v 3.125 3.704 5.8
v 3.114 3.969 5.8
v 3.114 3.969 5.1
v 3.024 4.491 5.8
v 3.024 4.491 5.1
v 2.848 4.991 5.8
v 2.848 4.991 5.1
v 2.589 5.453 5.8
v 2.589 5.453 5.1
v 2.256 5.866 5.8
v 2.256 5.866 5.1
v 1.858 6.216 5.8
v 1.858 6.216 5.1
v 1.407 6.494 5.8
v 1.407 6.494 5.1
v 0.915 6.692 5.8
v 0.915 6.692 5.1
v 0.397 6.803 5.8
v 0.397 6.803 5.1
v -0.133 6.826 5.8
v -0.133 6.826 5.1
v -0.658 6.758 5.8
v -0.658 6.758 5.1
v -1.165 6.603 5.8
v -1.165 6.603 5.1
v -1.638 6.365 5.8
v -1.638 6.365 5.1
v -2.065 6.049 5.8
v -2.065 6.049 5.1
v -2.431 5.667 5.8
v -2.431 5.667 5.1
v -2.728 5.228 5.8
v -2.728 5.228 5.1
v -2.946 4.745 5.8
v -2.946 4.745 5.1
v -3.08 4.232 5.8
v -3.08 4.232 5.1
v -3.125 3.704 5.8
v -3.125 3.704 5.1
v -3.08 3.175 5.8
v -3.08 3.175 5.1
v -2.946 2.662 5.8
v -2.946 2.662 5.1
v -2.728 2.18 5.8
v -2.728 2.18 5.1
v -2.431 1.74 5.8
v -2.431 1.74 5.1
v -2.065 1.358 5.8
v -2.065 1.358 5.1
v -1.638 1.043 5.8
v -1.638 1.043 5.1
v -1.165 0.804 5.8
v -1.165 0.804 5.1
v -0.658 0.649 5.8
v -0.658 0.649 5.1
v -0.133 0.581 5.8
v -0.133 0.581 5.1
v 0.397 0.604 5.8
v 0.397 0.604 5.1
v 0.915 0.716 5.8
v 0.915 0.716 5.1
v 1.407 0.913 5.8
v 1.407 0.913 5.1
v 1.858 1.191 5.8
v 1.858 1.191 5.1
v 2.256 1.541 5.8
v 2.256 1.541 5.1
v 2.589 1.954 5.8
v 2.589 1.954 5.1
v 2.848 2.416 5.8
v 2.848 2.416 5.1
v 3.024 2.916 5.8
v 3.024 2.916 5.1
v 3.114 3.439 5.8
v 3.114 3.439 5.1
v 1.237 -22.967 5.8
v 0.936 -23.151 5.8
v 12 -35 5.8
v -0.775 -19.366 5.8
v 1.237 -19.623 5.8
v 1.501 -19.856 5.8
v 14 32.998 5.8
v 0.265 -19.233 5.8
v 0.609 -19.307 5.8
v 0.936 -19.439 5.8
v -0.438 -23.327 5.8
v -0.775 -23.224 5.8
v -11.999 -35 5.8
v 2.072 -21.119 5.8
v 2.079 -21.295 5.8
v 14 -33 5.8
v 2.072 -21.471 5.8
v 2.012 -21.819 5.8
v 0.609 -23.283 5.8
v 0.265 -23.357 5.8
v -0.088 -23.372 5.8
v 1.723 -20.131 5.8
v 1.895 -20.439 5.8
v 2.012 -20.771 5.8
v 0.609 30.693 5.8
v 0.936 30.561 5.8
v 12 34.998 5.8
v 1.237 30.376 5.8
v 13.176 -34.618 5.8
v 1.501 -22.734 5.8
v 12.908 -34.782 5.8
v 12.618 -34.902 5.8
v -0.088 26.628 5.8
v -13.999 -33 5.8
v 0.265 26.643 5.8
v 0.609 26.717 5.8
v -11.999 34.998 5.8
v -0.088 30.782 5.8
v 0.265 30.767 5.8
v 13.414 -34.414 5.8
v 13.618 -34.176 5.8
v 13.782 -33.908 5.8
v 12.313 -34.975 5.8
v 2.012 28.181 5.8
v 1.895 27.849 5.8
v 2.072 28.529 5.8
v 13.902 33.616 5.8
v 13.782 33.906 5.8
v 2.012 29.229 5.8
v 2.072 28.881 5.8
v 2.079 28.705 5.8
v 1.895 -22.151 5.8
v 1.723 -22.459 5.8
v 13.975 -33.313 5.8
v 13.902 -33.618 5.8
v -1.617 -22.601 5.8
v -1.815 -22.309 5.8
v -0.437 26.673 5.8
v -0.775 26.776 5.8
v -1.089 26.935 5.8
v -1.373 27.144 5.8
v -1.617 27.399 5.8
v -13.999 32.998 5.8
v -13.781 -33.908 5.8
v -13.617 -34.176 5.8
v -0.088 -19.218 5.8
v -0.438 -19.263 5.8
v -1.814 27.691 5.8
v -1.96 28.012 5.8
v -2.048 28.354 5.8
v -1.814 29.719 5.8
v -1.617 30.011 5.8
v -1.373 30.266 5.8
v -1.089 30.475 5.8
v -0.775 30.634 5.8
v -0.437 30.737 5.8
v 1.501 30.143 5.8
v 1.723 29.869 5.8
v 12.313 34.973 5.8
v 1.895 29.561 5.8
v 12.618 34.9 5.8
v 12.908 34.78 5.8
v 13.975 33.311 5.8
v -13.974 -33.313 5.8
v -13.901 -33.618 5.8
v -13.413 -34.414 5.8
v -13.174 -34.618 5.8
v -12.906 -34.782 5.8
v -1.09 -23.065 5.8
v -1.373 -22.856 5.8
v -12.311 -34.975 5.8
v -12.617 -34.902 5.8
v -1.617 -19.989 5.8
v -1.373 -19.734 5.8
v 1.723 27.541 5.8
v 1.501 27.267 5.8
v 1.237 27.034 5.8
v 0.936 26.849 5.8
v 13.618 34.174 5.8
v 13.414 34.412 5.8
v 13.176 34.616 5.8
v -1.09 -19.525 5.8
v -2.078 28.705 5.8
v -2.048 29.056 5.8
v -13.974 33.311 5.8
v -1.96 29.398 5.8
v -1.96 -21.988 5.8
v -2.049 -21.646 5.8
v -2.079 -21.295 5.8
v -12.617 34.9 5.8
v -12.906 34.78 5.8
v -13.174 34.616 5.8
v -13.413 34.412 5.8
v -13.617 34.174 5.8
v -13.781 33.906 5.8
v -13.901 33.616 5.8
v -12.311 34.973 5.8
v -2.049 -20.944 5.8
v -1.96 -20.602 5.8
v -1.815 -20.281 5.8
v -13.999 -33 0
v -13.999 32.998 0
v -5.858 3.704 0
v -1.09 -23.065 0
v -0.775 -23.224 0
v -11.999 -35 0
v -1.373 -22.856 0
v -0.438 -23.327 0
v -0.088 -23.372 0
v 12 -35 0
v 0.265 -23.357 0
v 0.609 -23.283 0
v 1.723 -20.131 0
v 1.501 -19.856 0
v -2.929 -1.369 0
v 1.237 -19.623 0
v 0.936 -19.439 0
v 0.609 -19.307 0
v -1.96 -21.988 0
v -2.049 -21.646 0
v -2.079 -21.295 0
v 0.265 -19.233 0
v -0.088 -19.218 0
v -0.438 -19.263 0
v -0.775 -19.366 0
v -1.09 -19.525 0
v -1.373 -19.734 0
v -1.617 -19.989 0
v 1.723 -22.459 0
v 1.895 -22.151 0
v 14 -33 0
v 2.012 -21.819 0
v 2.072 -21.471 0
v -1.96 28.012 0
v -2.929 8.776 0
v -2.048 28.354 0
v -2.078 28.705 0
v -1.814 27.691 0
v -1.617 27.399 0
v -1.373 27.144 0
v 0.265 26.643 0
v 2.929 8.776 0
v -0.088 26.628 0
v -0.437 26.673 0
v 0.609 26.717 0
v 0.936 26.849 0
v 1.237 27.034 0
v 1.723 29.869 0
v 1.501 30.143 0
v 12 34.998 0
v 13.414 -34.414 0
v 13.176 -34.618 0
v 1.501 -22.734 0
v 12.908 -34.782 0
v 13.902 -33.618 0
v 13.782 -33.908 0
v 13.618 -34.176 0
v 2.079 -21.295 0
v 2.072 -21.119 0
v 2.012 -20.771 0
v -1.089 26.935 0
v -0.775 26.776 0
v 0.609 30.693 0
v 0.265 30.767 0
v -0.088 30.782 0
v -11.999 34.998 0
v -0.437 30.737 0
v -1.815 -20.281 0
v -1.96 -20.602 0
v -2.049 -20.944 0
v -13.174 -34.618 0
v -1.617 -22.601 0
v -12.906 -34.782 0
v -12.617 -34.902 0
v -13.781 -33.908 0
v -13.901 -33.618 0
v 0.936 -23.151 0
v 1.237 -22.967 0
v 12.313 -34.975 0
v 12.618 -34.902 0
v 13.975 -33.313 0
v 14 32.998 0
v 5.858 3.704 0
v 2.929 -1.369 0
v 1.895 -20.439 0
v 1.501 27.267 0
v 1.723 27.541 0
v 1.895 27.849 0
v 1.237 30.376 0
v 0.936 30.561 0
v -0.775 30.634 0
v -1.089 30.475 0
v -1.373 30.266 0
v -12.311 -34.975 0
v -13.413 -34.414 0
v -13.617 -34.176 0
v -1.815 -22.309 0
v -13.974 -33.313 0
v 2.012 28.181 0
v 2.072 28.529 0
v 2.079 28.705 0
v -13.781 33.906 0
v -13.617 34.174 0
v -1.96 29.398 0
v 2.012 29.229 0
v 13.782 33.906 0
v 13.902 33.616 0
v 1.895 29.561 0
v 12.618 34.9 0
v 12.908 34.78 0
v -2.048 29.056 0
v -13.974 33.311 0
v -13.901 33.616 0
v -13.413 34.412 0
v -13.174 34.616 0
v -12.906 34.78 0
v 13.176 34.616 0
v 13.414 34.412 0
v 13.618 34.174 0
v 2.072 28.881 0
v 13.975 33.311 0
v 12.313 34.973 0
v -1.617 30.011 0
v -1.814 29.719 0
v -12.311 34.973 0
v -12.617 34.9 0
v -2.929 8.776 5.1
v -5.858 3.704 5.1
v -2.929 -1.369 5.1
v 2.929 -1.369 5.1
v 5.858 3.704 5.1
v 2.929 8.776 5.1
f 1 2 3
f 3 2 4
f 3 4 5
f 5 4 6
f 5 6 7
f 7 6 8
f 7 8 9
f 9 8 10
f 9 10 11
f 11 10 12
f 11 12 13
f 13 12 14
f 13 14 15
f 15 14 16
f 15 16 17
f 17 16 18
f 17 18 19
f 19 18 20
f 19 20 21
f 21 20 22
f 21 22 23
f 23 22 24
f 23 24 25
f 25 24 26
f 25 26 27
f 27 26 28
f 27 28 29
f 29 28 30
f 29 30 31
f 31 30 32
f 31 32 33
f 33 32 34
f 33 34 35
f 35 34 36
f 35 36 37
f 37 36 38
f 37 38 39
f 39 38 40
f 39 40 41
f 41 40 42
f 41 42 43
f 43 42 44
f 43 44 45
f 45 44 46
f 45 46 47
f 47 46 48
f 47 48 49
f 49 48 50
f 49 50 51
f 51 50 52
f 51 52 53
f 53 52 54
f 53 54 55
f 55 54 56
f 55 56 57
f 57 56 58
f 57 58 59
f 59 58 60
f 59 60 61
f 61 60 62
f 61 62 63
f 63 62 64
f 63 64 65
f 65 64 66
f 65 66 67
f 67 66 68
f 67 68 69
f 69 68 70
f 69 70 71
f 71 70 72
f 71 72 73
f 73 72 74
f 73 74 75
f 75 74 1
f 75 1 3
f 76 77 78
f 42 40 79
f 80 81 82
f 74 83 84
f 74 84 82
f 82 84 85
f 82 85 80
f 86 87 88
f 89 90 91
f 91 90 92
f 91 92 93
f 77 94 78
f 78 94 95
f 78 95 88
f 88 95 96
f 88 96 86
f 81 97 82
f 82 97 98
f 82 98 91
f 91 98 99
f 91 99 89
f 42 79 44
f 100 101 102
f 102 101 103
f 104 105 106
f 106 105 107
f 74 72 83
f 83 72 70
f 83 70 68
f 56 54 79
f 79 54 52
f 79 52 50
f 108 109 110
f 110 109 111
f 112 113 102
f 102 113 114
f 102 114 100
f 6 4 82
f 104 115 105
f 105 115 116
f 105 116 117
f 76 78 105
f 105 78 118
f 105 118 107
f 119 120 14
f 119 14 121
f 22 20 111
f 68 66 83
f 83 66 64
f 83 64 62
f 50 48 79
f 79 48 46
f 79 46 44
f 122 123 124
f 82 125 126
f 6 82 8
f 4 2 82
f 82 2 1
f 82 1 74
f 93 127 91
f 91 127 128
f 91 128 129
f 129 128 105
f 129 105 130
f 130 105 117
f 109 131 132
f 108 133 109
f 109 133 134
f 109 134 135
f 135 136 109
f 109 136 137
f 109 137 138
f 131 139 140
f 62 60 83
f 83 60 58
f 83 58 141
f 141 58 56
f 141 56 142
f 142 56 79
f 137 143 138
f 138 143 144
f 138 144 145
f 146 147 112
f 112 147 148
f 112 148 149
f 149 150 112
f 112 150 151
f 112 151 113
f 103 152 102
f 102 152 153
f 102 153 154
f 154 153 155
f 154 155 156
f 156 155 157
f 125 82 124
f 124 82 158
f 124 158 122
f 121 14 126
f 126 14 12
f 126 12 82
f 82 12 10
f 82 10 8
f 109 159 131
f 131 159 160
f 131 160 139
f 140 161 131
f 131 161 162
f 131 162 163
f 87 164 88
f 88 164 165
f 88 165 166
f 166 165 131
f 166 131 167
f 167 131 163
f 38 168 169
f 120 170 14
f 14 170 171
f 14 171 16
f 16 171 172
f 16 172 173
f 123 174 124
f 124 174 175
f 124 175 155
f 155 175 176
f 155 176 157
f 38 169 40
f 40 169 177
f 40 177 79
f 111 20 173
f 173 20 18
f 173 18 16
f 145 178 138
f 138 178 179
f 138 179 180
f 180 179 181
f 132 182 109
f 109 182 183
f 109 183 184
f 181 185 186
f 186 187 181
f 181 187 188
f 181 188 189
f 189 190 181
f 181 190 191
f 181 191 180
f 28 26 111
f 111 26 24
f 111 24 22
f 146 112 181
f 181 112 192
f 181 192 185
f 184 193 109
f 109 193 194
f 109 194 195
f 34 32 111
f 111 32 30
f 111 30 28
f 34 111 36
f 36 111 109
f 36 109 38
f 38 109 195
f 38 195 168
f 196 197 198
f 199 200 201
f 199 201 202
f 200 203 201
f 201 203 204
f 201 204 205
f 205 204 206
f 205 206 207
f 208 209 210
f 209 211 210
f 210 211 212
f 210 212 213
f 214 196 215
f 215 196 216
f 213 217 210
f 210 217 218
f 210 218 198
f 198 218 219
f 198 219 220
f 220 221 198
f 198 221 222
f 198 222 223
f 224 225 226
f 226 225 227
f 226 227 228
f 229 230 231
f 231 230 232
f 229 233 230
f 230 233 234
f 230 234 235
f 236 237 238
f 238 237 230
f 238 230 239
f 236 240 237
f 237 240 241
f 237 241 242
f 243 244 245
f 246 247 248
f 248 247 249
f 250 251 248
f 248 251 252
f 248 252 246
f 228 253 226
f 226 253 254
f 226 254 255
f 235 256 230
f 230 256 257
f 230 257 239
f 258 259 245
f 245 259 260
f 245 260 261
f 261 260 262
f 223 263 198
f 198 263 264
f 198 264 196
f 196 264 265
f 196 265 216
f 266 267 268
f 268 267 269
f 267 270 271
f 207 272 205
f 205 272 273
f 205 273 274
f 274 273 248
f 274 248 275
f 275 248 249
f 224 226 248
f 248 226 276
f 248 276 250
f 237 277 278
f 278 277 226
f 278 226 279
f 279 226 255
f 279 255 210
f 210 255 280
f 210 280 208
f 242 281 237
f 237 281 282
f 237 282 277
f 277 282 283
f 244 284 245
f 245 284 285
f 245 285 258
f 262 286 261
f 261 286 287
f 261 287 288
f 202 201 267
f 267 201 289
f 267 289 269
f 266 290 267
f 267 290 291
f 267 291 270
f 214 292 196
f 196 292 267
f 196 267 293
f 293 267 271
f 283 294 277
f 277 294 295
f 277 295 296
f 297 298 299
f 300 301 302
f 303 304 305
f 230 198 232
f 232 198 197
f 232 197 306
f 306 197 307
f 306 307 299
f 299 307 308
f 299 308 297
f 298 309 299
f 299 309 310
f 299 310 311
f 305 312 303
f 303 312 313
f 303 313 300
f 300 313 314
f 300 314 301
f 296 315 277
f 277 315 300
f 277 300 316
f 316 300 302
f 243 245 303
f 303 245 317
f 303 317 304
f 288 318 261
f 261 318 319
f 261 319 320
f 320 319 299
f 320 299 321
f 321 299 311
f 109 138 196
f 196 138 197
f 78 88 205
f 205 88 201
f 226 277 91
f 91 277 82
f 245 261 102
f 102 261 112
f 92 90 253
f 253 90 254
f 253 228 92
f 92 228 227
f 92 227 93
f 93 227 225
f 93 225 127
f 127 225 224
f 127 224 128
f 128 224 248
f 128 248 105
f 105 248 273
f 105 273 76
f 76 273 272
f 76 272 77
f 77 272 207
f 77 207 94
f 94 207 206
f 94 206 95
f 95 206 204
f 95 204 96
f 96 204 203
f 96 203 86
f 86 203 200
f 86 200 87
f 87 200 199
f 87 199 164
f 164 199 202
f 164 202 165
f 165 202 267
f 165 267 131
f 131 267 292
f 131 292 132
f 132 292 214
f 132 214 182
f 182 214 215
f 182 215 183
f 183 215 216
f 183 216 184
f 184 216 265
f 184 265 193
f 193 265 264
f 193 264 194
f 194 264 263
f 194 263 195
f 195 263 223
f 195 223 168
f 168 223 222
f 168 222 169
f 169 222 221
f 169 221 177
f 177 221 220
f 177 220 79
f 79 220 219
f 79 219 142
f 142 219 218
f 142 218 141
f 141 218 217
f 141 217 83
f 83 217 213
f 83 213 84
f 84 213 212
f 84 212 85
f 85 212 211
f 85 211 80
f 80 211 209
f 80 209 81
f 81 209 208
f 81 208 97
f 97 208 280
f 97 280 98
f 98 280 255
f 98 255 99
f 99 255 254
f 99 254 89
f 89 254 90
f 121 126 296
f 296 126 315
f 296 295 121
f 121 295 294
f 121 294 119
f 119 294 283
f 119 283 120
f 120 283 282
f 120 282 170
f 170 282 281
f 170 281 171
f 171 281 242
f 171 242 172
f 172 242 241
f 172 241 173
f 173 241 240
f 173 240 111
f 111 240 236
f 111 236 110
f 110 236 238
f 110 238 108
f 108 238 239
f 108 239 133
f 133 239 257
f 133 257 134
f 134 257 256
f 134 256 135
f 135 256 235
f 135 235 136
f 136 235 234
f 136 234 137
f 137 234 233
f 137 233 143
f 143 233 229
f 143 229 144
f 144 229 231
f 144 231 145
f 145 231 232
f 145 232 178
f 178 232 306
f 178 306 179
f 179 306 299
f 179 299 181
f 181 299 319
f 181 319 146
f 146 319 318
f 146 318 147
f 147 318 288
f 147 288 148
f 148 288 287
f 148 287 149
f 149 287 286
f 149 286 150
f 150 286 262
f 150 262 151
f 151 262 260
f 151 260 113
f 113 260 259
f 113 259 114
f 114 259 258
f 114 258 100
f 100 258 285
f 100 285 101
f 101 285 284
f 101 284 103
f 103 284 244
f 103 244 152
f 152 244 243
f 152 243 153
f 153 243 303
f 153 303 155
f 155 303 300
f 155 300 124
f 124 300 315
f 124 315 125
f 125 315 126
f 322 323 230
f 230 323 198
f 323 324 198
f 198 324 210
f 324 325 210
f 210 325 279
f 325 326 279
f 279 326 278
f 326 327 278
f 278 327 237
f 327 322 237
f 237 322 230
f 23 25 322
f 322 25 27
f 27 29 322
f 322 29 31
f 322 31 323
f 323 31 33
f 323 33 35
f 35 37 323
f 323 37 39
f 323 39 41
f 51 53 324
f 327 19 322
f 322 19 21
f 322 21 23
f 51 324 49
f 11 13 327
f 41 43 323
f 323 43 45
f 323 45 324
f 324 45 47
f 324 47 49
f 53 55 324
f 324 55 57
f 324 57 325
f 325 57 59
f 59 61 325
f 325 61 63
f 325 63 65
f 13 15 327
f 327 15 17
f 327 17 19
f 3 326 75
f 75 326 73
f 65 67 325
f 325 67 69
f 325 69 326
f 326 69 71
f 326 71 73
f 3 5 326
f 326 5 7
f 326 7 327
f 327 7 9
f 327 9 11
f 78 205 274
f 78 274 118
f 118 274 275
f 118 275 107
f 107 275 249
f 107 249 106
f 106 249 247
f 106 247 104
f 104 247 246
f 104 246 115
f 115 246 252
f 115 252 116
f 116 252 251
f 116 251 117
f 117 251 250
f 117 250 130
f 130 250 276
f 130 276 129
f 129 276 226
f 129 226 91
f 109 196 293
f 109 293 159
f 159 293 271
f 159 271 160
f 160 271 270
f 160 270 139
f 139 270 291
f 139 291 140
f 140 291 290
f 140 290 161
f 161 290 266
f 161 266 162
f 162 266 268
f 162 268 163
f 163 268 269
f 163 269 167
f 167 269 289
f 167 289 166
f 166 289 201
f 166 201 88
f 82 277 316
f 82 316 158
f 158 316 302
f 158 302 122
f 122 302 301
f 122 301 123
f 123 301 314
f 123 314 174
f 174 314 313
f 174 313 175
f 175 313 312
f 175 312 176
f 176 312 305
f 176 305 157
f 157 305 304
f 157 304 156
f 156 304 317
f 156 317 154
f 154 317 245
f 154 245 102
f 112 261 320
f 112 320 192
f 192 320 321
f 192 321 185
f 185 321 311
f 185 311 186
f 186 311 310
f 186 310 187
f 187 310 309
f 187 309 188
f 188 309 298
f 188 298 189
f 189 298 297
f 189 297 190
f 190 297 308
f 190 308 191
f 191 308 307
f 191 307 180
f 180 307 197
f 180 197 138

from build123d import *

# Parameters (mm, degrees)
SKETCH1_W           = 27.998507133
SKETCH1_H           = 69.998003006
SKETCH1_R           = 2.078999996
SKETCH1_R_2         = 3.125
SKETCH1_R_3         = 2.078894146
BOSS_EXTRUDE1_DEPTH = 5.8
CUT_EXTRUDE1_DEPTH  = 5.1
FILLET1_R           = 2


with BuildPart() as part:
    # Sketch1 → Boss-Extrude1 (new body)
    with BuildSketch(Plane.XY):
        with Locations((0.000746433, -0.000998497)):
            Rectangle(SKETCH1_W, SKETCH1_H)
        with Locations((0.000493893, -21.295000553)):
            Circle(SKETCH1_R, mode=Mode.SUBTRACT)
        with Locations((0, 3.703561495)):
            Circle(SKETCH1_R_2, mode=Mode.SUBTRACT)
        with Locations((0.000493654, 28.705001831)):
            Circle(SKETCH1_R_3, mode=Mode.SUBTRACT)
    extrude(amount=BOSS_EXTRUDE1_DEPTH)

    # Sketch2 → Cut-Extrude1 (cut)
    with BuildSketch(Plane(origin=(0, 0, 0), x_dir=(-1, 0, 0), z_dir=(0, 0, -1))):
        Polygon((2.928753578, 8.776311495), (-2.928753578, 8.776311495), (-5.857507156, 3.703561495), (-2.928753578, -1.369188505), (2.928753578, -1.369188505), (5.857507156, 3.703561495), align=None)
    extrude(amount=-CUT_EXTRUDE1_DEPTH, mode=Mode.SUBTRACT)

    # Fillet1
    fillet1_edges = [part.edges().sort_by_distance(p)[0] for p in [
        (-13.998507133, 34.998003006, 2.9),
        (14, 34.998003006, 2.9),
        (14, -35, 2.9),
        (-13.998507133, -35, 2.9),
    ]]
    fillet(fillet1_edges, radius=FILLET1_R)


solid = part.part
